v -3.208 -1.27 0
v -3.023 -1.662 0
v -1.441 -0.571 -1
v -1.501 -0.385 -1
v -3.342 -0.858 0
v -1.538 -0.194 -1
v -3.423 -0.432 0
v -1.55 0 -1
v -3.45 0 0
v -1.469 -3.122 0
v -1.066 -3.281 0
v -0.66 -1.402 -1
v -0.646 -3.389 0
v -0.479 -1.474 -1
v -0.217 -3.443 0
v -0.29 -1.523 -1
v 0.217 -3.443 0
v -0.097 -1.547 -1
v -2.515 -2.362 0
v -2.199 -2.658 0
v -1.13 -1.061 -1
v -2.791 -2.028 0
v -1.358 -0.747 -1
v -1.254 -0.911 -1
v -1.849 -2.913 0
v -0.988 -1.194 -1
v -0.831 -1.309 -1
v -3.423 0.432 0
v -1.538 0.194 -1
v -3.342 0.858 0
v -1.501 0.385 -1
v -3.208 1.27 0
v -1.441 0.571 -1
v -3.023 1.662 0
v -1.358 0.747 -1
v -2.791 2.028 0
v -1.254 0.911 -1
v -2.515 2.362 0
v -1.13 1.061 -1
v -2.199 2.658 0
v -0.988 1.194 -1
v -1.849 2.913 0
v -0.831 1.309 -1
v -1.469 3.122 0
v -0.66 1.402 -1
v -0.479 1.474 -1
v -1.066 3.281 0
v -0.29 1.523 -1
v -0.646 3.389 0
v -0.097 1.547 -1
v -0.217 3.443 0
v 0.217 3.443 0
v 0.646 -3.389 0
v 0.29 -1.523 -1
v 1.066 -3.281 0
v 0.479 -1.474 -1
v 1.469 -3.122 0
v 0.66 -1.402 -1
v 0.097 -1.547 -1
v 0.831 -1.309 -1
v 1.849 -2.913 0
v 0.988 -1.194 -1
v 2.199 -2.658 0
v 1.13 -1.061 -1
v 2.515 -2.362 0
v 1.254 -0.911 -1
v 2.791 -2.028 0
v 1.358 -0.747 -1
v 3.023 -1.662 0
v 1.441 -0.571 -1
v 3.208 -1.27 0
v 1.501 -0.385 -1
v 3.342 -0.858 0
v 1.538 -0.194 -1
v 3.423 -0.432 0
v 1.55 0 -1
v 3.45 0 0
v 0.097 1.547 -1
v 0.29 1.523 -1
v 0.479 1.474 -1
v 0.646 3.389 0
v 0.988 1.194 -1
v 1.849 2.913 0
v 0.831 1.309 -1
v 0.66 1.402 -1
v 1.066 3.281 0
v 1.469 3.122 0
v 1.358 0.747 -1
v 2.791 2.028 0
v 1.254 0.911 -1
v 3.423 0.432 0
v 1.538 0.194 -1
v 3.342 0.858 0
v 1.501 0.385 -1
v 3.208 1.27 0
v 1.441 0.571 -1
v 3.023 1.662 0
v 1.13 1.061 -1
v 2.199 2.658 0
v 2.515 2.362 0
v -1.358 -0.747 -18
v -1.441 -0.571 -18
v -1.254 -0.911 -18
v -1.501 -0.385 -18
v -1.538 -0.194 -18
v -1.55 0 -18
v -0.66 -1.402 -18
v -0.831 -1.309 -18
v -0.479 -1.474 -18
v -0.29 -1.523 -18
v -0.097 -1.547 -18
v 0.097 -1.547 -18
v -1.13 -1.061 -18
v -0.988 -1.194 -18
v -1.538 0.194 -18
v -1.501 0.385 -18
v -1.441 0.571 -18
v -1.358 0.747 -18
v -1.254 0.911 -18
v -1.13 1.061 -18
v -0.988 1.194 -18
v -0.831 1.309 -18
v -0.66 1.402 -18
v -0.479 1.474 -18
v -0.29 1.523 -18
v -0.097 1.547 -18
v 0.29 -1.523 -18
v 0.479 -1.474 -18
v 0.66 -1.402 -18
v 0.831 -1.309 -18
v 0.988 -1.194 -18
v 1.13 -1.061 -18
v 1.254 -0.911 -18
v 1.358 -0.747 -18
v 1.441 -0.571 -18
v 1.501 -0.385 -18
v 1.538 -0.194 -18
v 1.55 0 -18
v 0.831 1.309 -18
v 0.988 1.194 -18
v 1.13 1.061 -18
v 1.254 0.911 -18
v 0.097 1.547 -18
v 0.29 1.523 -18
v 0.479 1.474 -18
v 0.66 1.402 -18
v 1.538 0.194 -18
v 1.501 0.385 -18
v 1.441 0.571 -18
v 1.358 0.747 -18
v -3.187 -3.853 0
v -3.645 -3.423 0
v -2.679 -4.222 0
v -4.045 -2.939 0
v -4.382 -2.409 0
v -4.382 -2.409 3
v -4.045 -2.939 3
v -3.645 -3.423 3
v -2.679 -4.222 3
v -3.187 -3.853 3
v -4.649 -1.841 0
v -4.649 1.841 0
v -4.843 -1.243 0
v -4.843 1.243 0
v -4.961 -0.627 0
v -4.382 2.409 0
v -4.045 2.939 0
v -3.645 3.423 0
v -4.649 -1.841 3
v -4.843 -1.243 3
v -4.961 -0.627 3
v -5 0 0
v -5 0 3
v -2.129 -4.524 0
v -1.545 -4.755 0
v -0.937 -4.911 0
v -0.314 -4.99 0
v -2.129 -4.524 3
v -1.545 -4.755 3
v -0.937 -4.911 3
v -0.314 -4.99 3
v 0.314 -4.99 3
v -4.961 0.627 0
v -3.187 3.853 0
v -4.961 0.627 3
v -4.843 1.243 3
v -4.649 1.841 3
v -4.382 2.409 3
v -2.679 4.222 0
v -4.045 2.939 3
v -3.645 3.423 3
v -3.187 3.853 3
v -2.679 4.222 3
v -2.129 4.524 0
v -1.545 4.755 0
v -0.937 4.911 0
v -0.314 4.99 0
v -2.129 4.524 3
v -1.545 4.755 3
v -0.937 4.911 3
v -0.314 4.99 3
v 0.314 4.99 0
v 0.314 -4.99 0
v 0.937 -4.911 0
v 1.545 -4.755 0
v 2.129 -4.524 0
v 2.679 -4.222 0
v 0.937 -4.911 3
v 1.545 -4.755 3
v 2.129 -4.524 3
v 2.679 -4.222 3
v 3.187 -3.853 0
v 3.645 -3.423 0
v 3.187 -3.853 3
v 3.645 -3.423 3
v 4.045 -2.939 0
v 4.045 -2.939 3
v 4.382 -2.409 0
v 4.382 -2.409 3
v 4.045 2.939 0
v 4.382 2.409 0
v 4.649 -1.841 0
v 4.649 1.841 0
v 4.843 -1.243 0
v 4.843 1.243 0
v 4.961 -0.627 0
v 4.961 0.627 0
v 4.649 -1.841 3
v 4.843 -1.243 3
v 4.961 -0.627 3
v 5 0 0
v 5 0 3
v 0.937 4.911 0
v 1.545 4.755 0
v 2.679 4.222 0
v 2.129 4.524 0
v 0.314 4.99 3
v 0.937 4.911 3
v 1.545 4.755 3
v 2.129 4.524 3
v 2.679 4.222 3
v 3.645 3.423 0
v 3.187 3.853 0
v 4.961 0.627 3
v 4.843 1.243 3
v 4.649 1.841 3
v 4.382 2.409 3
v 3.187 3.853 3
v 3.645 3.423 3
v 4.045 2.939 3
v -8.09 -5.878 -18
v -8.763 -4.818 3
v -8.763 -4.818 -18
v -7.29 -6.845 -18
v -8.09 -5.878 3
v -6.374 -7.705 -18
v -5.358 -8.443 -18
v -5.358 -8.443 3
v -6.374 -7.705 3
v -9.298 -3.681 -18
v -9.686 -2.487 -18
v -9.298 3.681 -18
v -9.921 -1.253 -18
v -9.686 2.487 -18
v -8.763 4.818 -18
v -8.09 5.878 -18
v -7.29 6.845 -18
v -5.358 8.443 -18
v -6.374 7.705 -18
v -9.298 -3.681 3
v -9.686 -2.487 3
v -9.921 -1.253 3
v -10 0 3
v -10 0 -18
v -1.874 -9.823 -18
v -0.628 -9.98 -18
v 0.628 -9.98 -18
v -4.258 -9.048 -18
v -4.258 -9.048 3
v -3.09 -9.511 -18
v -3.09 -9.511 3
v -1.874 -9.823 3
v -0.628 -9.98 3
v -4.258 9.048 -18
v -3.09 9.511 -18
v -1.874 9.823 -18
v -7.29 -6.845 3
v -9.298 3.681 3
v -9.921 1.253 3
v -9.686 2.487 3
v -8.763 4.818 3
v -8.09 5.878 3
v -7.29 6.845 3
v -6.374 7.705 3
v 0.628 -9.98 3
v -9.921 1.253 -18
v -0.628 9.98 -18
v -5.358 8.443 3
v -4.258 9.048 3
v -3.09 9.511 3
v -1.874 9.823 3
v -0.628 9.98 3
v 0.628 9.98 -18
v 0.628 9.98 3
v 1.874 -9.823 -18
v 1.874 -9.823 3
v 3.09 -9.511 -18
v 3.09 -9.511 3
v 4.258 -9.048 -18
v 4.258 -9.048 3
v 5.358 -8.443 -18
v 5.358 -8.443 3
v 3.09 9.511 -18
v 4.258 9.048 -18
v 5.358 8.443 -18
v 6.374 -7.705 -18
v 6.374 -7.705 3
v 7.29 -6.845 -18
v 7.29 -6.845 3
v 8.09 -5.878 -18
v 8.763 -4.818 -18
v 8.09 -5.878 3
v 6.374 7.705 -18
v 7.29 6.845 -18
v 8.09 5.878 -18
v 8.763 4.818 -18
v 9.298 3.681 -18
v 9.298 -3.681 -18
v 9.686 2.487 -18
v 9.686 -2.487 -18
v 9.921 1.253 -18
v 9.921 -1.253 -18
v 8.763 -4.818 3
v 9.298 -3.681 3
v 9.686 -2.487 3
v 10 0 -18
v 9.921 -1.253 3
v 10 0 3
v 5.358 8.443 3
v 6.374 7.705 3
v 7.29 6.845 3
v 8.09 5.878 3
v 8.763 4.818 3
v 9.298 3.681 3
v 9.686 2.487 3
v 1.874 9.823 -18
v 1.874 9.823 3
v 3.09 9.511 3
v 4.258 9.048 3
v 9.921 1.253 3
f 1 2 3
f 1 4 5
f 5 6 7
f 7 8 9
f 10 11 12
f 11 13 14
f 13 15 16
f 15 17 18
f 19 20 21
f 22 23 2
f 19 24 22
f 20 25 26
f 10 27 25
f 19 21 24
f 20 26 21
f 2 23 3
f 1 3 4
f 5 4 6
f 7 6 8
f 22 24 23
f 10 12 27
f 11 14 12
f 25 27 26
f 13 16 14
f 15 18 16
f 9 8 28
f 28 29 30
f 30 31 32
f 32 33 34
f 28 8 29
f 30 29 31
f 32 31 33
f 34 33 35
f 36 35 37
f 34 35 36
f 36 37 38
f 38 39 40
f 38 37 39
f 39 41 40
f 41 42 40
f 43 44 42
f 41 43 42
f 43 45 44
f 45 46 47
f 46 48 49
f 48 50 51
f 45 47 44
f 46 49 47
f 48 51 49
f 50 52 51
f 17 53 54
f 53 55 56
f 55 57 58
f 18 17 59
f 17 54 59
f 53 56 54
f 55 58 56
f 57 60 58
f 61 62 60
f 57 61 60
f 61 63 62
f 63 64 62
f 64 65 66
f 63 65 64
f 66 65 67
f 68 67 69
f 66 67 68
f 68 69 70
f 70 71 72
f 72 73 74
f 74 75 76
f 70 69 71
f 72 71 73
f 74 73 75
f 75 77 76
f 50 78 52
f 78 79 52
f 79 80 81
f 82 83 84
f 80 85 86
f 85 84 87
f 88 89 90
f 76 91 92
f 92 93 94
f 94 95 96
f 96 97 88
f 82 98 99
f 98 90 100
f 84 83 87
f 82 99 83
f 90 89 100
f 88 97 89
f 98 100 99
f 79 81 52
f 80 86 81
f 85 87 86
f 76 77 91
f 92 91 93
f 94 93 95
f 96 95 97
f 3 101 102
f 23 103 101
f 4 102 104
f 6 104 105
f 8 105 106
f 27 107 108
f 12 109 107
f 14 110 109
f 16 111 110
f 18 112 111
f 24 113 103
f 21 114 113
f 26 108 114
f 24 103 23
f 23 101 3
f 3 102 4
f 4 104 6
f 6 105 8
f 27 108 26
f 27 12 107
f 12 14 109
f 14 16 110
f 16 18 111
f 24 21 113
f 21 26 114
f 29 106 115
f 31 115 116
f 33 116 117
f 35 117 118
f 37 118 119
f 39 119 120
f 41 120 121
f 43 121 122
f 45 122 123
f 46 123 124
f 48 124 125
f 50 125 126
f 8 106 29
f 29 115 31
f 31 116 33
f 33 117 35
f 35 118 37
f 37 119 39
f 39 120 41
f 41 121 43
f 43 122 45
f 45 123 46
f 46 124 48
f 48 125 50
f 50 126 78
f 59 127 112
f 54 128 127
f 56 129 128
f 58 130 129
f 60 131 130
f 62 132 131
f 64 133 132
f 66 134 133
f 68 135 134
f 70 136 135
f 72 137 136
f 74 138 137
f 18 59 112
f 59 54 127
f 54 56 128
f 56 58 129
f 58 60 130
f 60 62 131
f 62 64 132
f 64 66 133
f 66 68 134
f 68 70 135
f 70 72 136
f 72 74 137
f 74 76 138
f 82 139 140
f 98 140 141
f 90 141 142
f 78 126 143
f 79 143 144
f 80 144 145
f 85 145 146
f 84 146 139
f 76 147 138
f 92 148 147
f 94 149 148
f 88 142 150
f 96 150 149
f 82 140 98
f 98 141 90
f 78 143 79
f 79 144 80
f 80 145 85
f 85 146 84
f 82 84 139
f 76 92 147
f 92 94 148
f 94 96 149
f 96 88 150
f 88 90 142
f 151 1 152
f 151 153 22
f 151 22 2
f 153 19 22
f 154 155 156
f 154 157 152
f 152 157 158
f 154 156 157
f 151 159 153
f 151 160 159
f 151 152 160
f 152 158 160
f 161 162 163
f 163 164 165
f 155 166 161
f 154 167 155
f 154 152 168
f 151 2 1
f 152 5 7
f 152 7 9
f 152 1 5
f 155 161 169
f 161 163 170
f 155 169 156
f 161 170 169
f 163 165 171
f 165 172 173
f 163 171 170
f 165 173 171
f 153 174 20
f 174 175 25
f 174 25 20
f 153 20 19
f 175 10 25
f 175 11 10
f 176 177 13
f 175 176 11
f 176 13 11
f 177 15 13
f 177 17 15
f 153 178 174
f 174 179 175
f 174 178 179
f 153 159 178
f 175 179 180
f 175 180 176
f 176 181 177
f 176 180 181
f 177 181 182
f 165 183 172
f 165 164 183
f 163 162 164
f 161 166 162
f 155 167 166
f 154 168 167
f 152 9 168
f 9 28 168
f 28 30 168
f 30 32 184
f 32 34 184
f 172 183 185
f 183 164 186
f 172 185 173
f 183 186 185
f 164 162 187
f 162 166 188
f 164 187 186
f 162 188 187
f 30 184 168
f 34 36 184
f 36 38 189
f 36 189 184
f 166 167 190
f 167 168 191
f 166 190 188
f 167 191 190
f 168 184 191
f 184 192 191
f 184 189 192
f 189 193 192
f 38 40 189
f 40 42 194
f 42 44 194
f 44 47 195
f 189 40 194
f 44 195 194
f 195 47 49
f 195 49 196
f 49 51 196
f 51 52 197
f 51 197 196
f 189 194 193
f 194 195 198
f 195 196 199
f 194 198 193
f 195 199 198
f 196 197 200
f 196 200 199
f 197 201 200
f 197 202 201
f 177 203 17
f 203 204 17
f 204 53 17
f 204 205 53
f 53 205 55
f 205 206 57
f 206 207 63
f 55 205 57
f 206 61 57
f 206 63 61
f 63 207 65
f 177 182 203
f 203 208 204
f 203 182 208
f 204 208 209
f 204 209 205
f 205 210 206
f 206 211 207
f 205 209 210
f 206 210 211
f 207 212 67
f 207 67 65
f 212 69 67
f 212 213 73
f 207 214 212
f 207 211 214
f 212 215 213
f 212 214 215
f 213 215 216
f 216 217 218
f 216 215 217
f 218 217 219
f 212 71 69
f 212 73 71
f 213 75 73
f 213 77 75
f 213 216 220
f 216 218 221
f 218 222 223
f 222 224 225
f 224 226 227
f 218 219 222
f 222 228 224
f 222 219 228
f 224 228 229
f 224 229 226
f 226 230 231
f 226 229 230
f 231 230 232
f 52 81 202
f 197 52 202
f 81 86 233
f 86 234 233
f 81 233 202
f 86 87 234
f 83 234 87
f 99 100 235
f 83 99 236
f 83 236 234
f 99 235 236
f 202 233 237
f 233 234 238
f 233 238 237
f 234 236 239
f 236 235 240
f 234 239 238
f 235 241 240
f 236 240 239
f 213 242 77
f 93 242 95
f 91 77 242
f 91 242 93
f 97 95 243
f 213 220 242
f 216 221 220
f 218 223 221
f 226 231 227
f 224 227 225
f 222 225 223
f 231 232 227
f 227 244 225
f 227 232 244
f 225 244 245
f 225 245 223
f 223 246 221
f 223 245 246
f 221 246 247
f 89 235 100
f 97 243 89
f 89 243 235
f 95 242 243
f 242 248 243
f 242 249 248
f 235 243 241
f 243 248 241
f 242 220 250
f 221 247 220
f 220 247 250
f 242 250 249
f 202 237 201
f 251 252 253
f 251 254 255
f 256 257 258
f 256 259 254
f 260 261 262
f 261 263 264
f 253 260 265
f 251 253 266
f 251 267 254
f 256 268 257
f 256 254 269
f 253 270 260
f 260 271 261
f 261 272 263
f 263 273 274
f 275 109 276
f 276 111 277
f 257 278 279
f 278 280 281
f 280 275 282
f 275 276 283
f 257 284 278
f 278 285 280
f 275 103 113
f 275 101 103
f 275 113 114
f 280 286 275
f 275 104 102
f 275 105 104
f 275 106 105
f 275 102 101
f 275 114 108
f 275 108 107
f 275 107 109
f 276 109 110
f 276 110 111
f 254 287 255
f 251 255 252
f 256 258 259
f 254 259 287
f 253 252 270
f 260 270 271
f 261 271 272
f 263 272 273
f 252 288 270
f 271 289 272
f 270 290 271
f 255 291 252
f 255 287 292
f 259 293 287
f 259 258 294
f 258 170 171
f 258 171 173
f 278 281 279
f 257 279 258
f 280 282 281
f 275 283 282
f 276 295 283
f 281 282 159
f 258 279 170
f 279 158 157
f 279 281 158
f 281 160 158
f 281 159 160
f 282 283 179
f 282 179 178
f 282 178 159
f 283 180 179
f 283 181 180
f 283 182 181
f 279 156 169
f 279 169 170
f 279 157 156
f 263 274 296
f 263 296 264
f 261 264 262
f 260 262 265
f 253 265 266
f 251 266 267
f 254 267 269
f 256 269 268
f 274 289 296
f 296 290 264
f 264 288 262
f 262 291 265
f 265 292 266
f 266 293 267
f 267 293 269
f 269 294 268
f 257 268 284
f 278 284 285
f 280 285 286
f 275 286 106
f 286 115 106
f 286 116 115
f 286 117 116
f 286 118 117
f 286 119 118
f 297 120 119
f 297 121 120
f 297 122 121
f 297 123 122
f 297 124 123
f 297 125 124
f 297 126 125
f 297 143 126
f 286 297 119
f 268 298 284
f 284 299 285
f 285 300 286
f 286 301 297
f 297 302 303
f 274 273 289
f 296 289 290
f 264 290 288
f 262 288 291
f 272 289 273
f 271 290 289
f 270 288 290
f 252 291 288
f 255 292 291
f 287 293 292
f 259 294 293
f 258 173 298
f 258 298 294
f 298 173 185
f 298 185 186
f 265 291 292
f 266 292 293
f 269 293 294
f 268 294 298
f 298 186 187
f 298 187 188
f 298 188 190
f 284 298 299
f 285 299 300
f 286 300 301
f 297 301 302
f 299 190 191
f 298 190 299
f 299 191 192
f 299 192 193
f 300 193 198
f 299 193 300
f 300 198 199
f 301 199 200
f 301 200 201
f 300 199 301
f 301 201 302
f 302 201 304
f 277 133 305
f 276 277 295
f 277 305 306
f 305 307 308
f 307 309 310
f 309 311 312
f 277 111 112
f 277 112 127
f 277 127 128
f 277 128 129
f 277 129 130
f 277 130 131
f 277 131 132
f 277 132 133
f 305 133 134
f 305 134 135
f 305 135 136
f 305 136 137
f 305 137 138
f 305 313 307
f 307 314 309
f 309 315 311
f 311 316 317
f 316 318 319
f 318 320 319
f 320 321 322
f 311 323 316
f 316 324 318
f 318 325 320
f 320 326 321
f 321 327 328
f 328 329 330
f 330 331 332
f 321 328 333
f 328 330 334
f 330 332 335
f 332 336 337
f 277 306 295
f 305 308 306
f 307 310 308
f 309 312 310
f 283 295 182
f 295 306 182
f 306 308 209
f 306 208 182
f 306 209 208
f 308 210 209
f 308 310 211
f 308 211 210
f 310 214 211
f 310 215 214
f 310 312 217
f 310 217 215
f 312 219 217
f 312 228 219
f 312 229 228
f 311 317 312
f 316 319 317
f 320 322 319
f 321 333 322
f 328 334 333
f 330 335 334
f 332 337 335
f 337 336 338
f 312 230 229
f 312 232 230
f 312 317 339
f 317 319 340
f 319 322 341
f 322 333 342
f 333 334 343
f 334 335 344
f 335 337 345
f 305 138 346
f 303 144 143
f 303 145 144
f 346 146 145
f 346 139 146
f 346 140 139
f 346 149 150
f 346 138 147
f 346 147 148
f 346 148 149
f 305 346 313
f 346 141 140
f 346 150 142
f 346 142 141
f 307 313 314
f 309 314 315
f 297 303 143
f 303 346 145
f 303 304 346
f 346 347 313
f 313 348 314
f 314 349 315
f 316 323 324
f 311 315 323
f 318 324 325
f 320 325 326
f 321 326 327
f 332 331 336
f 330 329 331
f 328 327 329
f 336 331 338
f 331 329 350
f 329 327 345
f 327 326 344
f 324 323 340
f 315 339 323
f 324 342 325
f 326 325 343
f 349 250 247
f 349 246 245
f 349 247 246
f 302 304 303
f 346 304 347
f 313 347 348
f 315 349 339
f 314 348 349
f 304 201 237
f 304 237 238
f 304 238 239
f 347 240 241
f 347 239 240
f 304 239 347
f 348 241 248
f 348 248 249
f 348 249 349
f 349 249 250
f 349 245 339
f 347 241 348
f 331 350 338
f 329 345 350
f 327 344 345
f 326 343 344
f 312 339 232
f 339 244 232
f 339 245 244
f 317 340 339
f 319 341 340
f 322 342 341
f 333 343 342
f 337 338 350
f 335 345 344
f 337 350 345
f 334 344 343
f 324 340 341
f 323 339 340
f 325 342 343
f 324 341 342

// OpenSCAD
$fn = 50;

difference() {
	union() {
		translate(v = [0, 0, -18.0]) {
			cylinder(h = 21, r = 10.0);
		}
	}
	union() {
		translate(v = [0, 0, 0]) {
			rotate(a = [0, 0, 0]) {
				difference() {
					union() {
						translate(v = [0, 0, -21.0]) {
							cylinder(h = 21, r = 1.25);
						}
						translate(v = [0, 0, -1.0]) {
							cylinder(h = 1.0, r1 = 1.55, r2 = 3.45);
						}
						translate(v = [0, 0, -21.0]) {
							cylinder(h = 21, r = 1.55);
						}
						translate(v = [0, 0, -21.0]) {
							cylinder(h = 21, r = 1.25);
						}
					}
					union();
				}
			}
		}
		#cylinder(h = 3, r = 5.0);
	}
}
